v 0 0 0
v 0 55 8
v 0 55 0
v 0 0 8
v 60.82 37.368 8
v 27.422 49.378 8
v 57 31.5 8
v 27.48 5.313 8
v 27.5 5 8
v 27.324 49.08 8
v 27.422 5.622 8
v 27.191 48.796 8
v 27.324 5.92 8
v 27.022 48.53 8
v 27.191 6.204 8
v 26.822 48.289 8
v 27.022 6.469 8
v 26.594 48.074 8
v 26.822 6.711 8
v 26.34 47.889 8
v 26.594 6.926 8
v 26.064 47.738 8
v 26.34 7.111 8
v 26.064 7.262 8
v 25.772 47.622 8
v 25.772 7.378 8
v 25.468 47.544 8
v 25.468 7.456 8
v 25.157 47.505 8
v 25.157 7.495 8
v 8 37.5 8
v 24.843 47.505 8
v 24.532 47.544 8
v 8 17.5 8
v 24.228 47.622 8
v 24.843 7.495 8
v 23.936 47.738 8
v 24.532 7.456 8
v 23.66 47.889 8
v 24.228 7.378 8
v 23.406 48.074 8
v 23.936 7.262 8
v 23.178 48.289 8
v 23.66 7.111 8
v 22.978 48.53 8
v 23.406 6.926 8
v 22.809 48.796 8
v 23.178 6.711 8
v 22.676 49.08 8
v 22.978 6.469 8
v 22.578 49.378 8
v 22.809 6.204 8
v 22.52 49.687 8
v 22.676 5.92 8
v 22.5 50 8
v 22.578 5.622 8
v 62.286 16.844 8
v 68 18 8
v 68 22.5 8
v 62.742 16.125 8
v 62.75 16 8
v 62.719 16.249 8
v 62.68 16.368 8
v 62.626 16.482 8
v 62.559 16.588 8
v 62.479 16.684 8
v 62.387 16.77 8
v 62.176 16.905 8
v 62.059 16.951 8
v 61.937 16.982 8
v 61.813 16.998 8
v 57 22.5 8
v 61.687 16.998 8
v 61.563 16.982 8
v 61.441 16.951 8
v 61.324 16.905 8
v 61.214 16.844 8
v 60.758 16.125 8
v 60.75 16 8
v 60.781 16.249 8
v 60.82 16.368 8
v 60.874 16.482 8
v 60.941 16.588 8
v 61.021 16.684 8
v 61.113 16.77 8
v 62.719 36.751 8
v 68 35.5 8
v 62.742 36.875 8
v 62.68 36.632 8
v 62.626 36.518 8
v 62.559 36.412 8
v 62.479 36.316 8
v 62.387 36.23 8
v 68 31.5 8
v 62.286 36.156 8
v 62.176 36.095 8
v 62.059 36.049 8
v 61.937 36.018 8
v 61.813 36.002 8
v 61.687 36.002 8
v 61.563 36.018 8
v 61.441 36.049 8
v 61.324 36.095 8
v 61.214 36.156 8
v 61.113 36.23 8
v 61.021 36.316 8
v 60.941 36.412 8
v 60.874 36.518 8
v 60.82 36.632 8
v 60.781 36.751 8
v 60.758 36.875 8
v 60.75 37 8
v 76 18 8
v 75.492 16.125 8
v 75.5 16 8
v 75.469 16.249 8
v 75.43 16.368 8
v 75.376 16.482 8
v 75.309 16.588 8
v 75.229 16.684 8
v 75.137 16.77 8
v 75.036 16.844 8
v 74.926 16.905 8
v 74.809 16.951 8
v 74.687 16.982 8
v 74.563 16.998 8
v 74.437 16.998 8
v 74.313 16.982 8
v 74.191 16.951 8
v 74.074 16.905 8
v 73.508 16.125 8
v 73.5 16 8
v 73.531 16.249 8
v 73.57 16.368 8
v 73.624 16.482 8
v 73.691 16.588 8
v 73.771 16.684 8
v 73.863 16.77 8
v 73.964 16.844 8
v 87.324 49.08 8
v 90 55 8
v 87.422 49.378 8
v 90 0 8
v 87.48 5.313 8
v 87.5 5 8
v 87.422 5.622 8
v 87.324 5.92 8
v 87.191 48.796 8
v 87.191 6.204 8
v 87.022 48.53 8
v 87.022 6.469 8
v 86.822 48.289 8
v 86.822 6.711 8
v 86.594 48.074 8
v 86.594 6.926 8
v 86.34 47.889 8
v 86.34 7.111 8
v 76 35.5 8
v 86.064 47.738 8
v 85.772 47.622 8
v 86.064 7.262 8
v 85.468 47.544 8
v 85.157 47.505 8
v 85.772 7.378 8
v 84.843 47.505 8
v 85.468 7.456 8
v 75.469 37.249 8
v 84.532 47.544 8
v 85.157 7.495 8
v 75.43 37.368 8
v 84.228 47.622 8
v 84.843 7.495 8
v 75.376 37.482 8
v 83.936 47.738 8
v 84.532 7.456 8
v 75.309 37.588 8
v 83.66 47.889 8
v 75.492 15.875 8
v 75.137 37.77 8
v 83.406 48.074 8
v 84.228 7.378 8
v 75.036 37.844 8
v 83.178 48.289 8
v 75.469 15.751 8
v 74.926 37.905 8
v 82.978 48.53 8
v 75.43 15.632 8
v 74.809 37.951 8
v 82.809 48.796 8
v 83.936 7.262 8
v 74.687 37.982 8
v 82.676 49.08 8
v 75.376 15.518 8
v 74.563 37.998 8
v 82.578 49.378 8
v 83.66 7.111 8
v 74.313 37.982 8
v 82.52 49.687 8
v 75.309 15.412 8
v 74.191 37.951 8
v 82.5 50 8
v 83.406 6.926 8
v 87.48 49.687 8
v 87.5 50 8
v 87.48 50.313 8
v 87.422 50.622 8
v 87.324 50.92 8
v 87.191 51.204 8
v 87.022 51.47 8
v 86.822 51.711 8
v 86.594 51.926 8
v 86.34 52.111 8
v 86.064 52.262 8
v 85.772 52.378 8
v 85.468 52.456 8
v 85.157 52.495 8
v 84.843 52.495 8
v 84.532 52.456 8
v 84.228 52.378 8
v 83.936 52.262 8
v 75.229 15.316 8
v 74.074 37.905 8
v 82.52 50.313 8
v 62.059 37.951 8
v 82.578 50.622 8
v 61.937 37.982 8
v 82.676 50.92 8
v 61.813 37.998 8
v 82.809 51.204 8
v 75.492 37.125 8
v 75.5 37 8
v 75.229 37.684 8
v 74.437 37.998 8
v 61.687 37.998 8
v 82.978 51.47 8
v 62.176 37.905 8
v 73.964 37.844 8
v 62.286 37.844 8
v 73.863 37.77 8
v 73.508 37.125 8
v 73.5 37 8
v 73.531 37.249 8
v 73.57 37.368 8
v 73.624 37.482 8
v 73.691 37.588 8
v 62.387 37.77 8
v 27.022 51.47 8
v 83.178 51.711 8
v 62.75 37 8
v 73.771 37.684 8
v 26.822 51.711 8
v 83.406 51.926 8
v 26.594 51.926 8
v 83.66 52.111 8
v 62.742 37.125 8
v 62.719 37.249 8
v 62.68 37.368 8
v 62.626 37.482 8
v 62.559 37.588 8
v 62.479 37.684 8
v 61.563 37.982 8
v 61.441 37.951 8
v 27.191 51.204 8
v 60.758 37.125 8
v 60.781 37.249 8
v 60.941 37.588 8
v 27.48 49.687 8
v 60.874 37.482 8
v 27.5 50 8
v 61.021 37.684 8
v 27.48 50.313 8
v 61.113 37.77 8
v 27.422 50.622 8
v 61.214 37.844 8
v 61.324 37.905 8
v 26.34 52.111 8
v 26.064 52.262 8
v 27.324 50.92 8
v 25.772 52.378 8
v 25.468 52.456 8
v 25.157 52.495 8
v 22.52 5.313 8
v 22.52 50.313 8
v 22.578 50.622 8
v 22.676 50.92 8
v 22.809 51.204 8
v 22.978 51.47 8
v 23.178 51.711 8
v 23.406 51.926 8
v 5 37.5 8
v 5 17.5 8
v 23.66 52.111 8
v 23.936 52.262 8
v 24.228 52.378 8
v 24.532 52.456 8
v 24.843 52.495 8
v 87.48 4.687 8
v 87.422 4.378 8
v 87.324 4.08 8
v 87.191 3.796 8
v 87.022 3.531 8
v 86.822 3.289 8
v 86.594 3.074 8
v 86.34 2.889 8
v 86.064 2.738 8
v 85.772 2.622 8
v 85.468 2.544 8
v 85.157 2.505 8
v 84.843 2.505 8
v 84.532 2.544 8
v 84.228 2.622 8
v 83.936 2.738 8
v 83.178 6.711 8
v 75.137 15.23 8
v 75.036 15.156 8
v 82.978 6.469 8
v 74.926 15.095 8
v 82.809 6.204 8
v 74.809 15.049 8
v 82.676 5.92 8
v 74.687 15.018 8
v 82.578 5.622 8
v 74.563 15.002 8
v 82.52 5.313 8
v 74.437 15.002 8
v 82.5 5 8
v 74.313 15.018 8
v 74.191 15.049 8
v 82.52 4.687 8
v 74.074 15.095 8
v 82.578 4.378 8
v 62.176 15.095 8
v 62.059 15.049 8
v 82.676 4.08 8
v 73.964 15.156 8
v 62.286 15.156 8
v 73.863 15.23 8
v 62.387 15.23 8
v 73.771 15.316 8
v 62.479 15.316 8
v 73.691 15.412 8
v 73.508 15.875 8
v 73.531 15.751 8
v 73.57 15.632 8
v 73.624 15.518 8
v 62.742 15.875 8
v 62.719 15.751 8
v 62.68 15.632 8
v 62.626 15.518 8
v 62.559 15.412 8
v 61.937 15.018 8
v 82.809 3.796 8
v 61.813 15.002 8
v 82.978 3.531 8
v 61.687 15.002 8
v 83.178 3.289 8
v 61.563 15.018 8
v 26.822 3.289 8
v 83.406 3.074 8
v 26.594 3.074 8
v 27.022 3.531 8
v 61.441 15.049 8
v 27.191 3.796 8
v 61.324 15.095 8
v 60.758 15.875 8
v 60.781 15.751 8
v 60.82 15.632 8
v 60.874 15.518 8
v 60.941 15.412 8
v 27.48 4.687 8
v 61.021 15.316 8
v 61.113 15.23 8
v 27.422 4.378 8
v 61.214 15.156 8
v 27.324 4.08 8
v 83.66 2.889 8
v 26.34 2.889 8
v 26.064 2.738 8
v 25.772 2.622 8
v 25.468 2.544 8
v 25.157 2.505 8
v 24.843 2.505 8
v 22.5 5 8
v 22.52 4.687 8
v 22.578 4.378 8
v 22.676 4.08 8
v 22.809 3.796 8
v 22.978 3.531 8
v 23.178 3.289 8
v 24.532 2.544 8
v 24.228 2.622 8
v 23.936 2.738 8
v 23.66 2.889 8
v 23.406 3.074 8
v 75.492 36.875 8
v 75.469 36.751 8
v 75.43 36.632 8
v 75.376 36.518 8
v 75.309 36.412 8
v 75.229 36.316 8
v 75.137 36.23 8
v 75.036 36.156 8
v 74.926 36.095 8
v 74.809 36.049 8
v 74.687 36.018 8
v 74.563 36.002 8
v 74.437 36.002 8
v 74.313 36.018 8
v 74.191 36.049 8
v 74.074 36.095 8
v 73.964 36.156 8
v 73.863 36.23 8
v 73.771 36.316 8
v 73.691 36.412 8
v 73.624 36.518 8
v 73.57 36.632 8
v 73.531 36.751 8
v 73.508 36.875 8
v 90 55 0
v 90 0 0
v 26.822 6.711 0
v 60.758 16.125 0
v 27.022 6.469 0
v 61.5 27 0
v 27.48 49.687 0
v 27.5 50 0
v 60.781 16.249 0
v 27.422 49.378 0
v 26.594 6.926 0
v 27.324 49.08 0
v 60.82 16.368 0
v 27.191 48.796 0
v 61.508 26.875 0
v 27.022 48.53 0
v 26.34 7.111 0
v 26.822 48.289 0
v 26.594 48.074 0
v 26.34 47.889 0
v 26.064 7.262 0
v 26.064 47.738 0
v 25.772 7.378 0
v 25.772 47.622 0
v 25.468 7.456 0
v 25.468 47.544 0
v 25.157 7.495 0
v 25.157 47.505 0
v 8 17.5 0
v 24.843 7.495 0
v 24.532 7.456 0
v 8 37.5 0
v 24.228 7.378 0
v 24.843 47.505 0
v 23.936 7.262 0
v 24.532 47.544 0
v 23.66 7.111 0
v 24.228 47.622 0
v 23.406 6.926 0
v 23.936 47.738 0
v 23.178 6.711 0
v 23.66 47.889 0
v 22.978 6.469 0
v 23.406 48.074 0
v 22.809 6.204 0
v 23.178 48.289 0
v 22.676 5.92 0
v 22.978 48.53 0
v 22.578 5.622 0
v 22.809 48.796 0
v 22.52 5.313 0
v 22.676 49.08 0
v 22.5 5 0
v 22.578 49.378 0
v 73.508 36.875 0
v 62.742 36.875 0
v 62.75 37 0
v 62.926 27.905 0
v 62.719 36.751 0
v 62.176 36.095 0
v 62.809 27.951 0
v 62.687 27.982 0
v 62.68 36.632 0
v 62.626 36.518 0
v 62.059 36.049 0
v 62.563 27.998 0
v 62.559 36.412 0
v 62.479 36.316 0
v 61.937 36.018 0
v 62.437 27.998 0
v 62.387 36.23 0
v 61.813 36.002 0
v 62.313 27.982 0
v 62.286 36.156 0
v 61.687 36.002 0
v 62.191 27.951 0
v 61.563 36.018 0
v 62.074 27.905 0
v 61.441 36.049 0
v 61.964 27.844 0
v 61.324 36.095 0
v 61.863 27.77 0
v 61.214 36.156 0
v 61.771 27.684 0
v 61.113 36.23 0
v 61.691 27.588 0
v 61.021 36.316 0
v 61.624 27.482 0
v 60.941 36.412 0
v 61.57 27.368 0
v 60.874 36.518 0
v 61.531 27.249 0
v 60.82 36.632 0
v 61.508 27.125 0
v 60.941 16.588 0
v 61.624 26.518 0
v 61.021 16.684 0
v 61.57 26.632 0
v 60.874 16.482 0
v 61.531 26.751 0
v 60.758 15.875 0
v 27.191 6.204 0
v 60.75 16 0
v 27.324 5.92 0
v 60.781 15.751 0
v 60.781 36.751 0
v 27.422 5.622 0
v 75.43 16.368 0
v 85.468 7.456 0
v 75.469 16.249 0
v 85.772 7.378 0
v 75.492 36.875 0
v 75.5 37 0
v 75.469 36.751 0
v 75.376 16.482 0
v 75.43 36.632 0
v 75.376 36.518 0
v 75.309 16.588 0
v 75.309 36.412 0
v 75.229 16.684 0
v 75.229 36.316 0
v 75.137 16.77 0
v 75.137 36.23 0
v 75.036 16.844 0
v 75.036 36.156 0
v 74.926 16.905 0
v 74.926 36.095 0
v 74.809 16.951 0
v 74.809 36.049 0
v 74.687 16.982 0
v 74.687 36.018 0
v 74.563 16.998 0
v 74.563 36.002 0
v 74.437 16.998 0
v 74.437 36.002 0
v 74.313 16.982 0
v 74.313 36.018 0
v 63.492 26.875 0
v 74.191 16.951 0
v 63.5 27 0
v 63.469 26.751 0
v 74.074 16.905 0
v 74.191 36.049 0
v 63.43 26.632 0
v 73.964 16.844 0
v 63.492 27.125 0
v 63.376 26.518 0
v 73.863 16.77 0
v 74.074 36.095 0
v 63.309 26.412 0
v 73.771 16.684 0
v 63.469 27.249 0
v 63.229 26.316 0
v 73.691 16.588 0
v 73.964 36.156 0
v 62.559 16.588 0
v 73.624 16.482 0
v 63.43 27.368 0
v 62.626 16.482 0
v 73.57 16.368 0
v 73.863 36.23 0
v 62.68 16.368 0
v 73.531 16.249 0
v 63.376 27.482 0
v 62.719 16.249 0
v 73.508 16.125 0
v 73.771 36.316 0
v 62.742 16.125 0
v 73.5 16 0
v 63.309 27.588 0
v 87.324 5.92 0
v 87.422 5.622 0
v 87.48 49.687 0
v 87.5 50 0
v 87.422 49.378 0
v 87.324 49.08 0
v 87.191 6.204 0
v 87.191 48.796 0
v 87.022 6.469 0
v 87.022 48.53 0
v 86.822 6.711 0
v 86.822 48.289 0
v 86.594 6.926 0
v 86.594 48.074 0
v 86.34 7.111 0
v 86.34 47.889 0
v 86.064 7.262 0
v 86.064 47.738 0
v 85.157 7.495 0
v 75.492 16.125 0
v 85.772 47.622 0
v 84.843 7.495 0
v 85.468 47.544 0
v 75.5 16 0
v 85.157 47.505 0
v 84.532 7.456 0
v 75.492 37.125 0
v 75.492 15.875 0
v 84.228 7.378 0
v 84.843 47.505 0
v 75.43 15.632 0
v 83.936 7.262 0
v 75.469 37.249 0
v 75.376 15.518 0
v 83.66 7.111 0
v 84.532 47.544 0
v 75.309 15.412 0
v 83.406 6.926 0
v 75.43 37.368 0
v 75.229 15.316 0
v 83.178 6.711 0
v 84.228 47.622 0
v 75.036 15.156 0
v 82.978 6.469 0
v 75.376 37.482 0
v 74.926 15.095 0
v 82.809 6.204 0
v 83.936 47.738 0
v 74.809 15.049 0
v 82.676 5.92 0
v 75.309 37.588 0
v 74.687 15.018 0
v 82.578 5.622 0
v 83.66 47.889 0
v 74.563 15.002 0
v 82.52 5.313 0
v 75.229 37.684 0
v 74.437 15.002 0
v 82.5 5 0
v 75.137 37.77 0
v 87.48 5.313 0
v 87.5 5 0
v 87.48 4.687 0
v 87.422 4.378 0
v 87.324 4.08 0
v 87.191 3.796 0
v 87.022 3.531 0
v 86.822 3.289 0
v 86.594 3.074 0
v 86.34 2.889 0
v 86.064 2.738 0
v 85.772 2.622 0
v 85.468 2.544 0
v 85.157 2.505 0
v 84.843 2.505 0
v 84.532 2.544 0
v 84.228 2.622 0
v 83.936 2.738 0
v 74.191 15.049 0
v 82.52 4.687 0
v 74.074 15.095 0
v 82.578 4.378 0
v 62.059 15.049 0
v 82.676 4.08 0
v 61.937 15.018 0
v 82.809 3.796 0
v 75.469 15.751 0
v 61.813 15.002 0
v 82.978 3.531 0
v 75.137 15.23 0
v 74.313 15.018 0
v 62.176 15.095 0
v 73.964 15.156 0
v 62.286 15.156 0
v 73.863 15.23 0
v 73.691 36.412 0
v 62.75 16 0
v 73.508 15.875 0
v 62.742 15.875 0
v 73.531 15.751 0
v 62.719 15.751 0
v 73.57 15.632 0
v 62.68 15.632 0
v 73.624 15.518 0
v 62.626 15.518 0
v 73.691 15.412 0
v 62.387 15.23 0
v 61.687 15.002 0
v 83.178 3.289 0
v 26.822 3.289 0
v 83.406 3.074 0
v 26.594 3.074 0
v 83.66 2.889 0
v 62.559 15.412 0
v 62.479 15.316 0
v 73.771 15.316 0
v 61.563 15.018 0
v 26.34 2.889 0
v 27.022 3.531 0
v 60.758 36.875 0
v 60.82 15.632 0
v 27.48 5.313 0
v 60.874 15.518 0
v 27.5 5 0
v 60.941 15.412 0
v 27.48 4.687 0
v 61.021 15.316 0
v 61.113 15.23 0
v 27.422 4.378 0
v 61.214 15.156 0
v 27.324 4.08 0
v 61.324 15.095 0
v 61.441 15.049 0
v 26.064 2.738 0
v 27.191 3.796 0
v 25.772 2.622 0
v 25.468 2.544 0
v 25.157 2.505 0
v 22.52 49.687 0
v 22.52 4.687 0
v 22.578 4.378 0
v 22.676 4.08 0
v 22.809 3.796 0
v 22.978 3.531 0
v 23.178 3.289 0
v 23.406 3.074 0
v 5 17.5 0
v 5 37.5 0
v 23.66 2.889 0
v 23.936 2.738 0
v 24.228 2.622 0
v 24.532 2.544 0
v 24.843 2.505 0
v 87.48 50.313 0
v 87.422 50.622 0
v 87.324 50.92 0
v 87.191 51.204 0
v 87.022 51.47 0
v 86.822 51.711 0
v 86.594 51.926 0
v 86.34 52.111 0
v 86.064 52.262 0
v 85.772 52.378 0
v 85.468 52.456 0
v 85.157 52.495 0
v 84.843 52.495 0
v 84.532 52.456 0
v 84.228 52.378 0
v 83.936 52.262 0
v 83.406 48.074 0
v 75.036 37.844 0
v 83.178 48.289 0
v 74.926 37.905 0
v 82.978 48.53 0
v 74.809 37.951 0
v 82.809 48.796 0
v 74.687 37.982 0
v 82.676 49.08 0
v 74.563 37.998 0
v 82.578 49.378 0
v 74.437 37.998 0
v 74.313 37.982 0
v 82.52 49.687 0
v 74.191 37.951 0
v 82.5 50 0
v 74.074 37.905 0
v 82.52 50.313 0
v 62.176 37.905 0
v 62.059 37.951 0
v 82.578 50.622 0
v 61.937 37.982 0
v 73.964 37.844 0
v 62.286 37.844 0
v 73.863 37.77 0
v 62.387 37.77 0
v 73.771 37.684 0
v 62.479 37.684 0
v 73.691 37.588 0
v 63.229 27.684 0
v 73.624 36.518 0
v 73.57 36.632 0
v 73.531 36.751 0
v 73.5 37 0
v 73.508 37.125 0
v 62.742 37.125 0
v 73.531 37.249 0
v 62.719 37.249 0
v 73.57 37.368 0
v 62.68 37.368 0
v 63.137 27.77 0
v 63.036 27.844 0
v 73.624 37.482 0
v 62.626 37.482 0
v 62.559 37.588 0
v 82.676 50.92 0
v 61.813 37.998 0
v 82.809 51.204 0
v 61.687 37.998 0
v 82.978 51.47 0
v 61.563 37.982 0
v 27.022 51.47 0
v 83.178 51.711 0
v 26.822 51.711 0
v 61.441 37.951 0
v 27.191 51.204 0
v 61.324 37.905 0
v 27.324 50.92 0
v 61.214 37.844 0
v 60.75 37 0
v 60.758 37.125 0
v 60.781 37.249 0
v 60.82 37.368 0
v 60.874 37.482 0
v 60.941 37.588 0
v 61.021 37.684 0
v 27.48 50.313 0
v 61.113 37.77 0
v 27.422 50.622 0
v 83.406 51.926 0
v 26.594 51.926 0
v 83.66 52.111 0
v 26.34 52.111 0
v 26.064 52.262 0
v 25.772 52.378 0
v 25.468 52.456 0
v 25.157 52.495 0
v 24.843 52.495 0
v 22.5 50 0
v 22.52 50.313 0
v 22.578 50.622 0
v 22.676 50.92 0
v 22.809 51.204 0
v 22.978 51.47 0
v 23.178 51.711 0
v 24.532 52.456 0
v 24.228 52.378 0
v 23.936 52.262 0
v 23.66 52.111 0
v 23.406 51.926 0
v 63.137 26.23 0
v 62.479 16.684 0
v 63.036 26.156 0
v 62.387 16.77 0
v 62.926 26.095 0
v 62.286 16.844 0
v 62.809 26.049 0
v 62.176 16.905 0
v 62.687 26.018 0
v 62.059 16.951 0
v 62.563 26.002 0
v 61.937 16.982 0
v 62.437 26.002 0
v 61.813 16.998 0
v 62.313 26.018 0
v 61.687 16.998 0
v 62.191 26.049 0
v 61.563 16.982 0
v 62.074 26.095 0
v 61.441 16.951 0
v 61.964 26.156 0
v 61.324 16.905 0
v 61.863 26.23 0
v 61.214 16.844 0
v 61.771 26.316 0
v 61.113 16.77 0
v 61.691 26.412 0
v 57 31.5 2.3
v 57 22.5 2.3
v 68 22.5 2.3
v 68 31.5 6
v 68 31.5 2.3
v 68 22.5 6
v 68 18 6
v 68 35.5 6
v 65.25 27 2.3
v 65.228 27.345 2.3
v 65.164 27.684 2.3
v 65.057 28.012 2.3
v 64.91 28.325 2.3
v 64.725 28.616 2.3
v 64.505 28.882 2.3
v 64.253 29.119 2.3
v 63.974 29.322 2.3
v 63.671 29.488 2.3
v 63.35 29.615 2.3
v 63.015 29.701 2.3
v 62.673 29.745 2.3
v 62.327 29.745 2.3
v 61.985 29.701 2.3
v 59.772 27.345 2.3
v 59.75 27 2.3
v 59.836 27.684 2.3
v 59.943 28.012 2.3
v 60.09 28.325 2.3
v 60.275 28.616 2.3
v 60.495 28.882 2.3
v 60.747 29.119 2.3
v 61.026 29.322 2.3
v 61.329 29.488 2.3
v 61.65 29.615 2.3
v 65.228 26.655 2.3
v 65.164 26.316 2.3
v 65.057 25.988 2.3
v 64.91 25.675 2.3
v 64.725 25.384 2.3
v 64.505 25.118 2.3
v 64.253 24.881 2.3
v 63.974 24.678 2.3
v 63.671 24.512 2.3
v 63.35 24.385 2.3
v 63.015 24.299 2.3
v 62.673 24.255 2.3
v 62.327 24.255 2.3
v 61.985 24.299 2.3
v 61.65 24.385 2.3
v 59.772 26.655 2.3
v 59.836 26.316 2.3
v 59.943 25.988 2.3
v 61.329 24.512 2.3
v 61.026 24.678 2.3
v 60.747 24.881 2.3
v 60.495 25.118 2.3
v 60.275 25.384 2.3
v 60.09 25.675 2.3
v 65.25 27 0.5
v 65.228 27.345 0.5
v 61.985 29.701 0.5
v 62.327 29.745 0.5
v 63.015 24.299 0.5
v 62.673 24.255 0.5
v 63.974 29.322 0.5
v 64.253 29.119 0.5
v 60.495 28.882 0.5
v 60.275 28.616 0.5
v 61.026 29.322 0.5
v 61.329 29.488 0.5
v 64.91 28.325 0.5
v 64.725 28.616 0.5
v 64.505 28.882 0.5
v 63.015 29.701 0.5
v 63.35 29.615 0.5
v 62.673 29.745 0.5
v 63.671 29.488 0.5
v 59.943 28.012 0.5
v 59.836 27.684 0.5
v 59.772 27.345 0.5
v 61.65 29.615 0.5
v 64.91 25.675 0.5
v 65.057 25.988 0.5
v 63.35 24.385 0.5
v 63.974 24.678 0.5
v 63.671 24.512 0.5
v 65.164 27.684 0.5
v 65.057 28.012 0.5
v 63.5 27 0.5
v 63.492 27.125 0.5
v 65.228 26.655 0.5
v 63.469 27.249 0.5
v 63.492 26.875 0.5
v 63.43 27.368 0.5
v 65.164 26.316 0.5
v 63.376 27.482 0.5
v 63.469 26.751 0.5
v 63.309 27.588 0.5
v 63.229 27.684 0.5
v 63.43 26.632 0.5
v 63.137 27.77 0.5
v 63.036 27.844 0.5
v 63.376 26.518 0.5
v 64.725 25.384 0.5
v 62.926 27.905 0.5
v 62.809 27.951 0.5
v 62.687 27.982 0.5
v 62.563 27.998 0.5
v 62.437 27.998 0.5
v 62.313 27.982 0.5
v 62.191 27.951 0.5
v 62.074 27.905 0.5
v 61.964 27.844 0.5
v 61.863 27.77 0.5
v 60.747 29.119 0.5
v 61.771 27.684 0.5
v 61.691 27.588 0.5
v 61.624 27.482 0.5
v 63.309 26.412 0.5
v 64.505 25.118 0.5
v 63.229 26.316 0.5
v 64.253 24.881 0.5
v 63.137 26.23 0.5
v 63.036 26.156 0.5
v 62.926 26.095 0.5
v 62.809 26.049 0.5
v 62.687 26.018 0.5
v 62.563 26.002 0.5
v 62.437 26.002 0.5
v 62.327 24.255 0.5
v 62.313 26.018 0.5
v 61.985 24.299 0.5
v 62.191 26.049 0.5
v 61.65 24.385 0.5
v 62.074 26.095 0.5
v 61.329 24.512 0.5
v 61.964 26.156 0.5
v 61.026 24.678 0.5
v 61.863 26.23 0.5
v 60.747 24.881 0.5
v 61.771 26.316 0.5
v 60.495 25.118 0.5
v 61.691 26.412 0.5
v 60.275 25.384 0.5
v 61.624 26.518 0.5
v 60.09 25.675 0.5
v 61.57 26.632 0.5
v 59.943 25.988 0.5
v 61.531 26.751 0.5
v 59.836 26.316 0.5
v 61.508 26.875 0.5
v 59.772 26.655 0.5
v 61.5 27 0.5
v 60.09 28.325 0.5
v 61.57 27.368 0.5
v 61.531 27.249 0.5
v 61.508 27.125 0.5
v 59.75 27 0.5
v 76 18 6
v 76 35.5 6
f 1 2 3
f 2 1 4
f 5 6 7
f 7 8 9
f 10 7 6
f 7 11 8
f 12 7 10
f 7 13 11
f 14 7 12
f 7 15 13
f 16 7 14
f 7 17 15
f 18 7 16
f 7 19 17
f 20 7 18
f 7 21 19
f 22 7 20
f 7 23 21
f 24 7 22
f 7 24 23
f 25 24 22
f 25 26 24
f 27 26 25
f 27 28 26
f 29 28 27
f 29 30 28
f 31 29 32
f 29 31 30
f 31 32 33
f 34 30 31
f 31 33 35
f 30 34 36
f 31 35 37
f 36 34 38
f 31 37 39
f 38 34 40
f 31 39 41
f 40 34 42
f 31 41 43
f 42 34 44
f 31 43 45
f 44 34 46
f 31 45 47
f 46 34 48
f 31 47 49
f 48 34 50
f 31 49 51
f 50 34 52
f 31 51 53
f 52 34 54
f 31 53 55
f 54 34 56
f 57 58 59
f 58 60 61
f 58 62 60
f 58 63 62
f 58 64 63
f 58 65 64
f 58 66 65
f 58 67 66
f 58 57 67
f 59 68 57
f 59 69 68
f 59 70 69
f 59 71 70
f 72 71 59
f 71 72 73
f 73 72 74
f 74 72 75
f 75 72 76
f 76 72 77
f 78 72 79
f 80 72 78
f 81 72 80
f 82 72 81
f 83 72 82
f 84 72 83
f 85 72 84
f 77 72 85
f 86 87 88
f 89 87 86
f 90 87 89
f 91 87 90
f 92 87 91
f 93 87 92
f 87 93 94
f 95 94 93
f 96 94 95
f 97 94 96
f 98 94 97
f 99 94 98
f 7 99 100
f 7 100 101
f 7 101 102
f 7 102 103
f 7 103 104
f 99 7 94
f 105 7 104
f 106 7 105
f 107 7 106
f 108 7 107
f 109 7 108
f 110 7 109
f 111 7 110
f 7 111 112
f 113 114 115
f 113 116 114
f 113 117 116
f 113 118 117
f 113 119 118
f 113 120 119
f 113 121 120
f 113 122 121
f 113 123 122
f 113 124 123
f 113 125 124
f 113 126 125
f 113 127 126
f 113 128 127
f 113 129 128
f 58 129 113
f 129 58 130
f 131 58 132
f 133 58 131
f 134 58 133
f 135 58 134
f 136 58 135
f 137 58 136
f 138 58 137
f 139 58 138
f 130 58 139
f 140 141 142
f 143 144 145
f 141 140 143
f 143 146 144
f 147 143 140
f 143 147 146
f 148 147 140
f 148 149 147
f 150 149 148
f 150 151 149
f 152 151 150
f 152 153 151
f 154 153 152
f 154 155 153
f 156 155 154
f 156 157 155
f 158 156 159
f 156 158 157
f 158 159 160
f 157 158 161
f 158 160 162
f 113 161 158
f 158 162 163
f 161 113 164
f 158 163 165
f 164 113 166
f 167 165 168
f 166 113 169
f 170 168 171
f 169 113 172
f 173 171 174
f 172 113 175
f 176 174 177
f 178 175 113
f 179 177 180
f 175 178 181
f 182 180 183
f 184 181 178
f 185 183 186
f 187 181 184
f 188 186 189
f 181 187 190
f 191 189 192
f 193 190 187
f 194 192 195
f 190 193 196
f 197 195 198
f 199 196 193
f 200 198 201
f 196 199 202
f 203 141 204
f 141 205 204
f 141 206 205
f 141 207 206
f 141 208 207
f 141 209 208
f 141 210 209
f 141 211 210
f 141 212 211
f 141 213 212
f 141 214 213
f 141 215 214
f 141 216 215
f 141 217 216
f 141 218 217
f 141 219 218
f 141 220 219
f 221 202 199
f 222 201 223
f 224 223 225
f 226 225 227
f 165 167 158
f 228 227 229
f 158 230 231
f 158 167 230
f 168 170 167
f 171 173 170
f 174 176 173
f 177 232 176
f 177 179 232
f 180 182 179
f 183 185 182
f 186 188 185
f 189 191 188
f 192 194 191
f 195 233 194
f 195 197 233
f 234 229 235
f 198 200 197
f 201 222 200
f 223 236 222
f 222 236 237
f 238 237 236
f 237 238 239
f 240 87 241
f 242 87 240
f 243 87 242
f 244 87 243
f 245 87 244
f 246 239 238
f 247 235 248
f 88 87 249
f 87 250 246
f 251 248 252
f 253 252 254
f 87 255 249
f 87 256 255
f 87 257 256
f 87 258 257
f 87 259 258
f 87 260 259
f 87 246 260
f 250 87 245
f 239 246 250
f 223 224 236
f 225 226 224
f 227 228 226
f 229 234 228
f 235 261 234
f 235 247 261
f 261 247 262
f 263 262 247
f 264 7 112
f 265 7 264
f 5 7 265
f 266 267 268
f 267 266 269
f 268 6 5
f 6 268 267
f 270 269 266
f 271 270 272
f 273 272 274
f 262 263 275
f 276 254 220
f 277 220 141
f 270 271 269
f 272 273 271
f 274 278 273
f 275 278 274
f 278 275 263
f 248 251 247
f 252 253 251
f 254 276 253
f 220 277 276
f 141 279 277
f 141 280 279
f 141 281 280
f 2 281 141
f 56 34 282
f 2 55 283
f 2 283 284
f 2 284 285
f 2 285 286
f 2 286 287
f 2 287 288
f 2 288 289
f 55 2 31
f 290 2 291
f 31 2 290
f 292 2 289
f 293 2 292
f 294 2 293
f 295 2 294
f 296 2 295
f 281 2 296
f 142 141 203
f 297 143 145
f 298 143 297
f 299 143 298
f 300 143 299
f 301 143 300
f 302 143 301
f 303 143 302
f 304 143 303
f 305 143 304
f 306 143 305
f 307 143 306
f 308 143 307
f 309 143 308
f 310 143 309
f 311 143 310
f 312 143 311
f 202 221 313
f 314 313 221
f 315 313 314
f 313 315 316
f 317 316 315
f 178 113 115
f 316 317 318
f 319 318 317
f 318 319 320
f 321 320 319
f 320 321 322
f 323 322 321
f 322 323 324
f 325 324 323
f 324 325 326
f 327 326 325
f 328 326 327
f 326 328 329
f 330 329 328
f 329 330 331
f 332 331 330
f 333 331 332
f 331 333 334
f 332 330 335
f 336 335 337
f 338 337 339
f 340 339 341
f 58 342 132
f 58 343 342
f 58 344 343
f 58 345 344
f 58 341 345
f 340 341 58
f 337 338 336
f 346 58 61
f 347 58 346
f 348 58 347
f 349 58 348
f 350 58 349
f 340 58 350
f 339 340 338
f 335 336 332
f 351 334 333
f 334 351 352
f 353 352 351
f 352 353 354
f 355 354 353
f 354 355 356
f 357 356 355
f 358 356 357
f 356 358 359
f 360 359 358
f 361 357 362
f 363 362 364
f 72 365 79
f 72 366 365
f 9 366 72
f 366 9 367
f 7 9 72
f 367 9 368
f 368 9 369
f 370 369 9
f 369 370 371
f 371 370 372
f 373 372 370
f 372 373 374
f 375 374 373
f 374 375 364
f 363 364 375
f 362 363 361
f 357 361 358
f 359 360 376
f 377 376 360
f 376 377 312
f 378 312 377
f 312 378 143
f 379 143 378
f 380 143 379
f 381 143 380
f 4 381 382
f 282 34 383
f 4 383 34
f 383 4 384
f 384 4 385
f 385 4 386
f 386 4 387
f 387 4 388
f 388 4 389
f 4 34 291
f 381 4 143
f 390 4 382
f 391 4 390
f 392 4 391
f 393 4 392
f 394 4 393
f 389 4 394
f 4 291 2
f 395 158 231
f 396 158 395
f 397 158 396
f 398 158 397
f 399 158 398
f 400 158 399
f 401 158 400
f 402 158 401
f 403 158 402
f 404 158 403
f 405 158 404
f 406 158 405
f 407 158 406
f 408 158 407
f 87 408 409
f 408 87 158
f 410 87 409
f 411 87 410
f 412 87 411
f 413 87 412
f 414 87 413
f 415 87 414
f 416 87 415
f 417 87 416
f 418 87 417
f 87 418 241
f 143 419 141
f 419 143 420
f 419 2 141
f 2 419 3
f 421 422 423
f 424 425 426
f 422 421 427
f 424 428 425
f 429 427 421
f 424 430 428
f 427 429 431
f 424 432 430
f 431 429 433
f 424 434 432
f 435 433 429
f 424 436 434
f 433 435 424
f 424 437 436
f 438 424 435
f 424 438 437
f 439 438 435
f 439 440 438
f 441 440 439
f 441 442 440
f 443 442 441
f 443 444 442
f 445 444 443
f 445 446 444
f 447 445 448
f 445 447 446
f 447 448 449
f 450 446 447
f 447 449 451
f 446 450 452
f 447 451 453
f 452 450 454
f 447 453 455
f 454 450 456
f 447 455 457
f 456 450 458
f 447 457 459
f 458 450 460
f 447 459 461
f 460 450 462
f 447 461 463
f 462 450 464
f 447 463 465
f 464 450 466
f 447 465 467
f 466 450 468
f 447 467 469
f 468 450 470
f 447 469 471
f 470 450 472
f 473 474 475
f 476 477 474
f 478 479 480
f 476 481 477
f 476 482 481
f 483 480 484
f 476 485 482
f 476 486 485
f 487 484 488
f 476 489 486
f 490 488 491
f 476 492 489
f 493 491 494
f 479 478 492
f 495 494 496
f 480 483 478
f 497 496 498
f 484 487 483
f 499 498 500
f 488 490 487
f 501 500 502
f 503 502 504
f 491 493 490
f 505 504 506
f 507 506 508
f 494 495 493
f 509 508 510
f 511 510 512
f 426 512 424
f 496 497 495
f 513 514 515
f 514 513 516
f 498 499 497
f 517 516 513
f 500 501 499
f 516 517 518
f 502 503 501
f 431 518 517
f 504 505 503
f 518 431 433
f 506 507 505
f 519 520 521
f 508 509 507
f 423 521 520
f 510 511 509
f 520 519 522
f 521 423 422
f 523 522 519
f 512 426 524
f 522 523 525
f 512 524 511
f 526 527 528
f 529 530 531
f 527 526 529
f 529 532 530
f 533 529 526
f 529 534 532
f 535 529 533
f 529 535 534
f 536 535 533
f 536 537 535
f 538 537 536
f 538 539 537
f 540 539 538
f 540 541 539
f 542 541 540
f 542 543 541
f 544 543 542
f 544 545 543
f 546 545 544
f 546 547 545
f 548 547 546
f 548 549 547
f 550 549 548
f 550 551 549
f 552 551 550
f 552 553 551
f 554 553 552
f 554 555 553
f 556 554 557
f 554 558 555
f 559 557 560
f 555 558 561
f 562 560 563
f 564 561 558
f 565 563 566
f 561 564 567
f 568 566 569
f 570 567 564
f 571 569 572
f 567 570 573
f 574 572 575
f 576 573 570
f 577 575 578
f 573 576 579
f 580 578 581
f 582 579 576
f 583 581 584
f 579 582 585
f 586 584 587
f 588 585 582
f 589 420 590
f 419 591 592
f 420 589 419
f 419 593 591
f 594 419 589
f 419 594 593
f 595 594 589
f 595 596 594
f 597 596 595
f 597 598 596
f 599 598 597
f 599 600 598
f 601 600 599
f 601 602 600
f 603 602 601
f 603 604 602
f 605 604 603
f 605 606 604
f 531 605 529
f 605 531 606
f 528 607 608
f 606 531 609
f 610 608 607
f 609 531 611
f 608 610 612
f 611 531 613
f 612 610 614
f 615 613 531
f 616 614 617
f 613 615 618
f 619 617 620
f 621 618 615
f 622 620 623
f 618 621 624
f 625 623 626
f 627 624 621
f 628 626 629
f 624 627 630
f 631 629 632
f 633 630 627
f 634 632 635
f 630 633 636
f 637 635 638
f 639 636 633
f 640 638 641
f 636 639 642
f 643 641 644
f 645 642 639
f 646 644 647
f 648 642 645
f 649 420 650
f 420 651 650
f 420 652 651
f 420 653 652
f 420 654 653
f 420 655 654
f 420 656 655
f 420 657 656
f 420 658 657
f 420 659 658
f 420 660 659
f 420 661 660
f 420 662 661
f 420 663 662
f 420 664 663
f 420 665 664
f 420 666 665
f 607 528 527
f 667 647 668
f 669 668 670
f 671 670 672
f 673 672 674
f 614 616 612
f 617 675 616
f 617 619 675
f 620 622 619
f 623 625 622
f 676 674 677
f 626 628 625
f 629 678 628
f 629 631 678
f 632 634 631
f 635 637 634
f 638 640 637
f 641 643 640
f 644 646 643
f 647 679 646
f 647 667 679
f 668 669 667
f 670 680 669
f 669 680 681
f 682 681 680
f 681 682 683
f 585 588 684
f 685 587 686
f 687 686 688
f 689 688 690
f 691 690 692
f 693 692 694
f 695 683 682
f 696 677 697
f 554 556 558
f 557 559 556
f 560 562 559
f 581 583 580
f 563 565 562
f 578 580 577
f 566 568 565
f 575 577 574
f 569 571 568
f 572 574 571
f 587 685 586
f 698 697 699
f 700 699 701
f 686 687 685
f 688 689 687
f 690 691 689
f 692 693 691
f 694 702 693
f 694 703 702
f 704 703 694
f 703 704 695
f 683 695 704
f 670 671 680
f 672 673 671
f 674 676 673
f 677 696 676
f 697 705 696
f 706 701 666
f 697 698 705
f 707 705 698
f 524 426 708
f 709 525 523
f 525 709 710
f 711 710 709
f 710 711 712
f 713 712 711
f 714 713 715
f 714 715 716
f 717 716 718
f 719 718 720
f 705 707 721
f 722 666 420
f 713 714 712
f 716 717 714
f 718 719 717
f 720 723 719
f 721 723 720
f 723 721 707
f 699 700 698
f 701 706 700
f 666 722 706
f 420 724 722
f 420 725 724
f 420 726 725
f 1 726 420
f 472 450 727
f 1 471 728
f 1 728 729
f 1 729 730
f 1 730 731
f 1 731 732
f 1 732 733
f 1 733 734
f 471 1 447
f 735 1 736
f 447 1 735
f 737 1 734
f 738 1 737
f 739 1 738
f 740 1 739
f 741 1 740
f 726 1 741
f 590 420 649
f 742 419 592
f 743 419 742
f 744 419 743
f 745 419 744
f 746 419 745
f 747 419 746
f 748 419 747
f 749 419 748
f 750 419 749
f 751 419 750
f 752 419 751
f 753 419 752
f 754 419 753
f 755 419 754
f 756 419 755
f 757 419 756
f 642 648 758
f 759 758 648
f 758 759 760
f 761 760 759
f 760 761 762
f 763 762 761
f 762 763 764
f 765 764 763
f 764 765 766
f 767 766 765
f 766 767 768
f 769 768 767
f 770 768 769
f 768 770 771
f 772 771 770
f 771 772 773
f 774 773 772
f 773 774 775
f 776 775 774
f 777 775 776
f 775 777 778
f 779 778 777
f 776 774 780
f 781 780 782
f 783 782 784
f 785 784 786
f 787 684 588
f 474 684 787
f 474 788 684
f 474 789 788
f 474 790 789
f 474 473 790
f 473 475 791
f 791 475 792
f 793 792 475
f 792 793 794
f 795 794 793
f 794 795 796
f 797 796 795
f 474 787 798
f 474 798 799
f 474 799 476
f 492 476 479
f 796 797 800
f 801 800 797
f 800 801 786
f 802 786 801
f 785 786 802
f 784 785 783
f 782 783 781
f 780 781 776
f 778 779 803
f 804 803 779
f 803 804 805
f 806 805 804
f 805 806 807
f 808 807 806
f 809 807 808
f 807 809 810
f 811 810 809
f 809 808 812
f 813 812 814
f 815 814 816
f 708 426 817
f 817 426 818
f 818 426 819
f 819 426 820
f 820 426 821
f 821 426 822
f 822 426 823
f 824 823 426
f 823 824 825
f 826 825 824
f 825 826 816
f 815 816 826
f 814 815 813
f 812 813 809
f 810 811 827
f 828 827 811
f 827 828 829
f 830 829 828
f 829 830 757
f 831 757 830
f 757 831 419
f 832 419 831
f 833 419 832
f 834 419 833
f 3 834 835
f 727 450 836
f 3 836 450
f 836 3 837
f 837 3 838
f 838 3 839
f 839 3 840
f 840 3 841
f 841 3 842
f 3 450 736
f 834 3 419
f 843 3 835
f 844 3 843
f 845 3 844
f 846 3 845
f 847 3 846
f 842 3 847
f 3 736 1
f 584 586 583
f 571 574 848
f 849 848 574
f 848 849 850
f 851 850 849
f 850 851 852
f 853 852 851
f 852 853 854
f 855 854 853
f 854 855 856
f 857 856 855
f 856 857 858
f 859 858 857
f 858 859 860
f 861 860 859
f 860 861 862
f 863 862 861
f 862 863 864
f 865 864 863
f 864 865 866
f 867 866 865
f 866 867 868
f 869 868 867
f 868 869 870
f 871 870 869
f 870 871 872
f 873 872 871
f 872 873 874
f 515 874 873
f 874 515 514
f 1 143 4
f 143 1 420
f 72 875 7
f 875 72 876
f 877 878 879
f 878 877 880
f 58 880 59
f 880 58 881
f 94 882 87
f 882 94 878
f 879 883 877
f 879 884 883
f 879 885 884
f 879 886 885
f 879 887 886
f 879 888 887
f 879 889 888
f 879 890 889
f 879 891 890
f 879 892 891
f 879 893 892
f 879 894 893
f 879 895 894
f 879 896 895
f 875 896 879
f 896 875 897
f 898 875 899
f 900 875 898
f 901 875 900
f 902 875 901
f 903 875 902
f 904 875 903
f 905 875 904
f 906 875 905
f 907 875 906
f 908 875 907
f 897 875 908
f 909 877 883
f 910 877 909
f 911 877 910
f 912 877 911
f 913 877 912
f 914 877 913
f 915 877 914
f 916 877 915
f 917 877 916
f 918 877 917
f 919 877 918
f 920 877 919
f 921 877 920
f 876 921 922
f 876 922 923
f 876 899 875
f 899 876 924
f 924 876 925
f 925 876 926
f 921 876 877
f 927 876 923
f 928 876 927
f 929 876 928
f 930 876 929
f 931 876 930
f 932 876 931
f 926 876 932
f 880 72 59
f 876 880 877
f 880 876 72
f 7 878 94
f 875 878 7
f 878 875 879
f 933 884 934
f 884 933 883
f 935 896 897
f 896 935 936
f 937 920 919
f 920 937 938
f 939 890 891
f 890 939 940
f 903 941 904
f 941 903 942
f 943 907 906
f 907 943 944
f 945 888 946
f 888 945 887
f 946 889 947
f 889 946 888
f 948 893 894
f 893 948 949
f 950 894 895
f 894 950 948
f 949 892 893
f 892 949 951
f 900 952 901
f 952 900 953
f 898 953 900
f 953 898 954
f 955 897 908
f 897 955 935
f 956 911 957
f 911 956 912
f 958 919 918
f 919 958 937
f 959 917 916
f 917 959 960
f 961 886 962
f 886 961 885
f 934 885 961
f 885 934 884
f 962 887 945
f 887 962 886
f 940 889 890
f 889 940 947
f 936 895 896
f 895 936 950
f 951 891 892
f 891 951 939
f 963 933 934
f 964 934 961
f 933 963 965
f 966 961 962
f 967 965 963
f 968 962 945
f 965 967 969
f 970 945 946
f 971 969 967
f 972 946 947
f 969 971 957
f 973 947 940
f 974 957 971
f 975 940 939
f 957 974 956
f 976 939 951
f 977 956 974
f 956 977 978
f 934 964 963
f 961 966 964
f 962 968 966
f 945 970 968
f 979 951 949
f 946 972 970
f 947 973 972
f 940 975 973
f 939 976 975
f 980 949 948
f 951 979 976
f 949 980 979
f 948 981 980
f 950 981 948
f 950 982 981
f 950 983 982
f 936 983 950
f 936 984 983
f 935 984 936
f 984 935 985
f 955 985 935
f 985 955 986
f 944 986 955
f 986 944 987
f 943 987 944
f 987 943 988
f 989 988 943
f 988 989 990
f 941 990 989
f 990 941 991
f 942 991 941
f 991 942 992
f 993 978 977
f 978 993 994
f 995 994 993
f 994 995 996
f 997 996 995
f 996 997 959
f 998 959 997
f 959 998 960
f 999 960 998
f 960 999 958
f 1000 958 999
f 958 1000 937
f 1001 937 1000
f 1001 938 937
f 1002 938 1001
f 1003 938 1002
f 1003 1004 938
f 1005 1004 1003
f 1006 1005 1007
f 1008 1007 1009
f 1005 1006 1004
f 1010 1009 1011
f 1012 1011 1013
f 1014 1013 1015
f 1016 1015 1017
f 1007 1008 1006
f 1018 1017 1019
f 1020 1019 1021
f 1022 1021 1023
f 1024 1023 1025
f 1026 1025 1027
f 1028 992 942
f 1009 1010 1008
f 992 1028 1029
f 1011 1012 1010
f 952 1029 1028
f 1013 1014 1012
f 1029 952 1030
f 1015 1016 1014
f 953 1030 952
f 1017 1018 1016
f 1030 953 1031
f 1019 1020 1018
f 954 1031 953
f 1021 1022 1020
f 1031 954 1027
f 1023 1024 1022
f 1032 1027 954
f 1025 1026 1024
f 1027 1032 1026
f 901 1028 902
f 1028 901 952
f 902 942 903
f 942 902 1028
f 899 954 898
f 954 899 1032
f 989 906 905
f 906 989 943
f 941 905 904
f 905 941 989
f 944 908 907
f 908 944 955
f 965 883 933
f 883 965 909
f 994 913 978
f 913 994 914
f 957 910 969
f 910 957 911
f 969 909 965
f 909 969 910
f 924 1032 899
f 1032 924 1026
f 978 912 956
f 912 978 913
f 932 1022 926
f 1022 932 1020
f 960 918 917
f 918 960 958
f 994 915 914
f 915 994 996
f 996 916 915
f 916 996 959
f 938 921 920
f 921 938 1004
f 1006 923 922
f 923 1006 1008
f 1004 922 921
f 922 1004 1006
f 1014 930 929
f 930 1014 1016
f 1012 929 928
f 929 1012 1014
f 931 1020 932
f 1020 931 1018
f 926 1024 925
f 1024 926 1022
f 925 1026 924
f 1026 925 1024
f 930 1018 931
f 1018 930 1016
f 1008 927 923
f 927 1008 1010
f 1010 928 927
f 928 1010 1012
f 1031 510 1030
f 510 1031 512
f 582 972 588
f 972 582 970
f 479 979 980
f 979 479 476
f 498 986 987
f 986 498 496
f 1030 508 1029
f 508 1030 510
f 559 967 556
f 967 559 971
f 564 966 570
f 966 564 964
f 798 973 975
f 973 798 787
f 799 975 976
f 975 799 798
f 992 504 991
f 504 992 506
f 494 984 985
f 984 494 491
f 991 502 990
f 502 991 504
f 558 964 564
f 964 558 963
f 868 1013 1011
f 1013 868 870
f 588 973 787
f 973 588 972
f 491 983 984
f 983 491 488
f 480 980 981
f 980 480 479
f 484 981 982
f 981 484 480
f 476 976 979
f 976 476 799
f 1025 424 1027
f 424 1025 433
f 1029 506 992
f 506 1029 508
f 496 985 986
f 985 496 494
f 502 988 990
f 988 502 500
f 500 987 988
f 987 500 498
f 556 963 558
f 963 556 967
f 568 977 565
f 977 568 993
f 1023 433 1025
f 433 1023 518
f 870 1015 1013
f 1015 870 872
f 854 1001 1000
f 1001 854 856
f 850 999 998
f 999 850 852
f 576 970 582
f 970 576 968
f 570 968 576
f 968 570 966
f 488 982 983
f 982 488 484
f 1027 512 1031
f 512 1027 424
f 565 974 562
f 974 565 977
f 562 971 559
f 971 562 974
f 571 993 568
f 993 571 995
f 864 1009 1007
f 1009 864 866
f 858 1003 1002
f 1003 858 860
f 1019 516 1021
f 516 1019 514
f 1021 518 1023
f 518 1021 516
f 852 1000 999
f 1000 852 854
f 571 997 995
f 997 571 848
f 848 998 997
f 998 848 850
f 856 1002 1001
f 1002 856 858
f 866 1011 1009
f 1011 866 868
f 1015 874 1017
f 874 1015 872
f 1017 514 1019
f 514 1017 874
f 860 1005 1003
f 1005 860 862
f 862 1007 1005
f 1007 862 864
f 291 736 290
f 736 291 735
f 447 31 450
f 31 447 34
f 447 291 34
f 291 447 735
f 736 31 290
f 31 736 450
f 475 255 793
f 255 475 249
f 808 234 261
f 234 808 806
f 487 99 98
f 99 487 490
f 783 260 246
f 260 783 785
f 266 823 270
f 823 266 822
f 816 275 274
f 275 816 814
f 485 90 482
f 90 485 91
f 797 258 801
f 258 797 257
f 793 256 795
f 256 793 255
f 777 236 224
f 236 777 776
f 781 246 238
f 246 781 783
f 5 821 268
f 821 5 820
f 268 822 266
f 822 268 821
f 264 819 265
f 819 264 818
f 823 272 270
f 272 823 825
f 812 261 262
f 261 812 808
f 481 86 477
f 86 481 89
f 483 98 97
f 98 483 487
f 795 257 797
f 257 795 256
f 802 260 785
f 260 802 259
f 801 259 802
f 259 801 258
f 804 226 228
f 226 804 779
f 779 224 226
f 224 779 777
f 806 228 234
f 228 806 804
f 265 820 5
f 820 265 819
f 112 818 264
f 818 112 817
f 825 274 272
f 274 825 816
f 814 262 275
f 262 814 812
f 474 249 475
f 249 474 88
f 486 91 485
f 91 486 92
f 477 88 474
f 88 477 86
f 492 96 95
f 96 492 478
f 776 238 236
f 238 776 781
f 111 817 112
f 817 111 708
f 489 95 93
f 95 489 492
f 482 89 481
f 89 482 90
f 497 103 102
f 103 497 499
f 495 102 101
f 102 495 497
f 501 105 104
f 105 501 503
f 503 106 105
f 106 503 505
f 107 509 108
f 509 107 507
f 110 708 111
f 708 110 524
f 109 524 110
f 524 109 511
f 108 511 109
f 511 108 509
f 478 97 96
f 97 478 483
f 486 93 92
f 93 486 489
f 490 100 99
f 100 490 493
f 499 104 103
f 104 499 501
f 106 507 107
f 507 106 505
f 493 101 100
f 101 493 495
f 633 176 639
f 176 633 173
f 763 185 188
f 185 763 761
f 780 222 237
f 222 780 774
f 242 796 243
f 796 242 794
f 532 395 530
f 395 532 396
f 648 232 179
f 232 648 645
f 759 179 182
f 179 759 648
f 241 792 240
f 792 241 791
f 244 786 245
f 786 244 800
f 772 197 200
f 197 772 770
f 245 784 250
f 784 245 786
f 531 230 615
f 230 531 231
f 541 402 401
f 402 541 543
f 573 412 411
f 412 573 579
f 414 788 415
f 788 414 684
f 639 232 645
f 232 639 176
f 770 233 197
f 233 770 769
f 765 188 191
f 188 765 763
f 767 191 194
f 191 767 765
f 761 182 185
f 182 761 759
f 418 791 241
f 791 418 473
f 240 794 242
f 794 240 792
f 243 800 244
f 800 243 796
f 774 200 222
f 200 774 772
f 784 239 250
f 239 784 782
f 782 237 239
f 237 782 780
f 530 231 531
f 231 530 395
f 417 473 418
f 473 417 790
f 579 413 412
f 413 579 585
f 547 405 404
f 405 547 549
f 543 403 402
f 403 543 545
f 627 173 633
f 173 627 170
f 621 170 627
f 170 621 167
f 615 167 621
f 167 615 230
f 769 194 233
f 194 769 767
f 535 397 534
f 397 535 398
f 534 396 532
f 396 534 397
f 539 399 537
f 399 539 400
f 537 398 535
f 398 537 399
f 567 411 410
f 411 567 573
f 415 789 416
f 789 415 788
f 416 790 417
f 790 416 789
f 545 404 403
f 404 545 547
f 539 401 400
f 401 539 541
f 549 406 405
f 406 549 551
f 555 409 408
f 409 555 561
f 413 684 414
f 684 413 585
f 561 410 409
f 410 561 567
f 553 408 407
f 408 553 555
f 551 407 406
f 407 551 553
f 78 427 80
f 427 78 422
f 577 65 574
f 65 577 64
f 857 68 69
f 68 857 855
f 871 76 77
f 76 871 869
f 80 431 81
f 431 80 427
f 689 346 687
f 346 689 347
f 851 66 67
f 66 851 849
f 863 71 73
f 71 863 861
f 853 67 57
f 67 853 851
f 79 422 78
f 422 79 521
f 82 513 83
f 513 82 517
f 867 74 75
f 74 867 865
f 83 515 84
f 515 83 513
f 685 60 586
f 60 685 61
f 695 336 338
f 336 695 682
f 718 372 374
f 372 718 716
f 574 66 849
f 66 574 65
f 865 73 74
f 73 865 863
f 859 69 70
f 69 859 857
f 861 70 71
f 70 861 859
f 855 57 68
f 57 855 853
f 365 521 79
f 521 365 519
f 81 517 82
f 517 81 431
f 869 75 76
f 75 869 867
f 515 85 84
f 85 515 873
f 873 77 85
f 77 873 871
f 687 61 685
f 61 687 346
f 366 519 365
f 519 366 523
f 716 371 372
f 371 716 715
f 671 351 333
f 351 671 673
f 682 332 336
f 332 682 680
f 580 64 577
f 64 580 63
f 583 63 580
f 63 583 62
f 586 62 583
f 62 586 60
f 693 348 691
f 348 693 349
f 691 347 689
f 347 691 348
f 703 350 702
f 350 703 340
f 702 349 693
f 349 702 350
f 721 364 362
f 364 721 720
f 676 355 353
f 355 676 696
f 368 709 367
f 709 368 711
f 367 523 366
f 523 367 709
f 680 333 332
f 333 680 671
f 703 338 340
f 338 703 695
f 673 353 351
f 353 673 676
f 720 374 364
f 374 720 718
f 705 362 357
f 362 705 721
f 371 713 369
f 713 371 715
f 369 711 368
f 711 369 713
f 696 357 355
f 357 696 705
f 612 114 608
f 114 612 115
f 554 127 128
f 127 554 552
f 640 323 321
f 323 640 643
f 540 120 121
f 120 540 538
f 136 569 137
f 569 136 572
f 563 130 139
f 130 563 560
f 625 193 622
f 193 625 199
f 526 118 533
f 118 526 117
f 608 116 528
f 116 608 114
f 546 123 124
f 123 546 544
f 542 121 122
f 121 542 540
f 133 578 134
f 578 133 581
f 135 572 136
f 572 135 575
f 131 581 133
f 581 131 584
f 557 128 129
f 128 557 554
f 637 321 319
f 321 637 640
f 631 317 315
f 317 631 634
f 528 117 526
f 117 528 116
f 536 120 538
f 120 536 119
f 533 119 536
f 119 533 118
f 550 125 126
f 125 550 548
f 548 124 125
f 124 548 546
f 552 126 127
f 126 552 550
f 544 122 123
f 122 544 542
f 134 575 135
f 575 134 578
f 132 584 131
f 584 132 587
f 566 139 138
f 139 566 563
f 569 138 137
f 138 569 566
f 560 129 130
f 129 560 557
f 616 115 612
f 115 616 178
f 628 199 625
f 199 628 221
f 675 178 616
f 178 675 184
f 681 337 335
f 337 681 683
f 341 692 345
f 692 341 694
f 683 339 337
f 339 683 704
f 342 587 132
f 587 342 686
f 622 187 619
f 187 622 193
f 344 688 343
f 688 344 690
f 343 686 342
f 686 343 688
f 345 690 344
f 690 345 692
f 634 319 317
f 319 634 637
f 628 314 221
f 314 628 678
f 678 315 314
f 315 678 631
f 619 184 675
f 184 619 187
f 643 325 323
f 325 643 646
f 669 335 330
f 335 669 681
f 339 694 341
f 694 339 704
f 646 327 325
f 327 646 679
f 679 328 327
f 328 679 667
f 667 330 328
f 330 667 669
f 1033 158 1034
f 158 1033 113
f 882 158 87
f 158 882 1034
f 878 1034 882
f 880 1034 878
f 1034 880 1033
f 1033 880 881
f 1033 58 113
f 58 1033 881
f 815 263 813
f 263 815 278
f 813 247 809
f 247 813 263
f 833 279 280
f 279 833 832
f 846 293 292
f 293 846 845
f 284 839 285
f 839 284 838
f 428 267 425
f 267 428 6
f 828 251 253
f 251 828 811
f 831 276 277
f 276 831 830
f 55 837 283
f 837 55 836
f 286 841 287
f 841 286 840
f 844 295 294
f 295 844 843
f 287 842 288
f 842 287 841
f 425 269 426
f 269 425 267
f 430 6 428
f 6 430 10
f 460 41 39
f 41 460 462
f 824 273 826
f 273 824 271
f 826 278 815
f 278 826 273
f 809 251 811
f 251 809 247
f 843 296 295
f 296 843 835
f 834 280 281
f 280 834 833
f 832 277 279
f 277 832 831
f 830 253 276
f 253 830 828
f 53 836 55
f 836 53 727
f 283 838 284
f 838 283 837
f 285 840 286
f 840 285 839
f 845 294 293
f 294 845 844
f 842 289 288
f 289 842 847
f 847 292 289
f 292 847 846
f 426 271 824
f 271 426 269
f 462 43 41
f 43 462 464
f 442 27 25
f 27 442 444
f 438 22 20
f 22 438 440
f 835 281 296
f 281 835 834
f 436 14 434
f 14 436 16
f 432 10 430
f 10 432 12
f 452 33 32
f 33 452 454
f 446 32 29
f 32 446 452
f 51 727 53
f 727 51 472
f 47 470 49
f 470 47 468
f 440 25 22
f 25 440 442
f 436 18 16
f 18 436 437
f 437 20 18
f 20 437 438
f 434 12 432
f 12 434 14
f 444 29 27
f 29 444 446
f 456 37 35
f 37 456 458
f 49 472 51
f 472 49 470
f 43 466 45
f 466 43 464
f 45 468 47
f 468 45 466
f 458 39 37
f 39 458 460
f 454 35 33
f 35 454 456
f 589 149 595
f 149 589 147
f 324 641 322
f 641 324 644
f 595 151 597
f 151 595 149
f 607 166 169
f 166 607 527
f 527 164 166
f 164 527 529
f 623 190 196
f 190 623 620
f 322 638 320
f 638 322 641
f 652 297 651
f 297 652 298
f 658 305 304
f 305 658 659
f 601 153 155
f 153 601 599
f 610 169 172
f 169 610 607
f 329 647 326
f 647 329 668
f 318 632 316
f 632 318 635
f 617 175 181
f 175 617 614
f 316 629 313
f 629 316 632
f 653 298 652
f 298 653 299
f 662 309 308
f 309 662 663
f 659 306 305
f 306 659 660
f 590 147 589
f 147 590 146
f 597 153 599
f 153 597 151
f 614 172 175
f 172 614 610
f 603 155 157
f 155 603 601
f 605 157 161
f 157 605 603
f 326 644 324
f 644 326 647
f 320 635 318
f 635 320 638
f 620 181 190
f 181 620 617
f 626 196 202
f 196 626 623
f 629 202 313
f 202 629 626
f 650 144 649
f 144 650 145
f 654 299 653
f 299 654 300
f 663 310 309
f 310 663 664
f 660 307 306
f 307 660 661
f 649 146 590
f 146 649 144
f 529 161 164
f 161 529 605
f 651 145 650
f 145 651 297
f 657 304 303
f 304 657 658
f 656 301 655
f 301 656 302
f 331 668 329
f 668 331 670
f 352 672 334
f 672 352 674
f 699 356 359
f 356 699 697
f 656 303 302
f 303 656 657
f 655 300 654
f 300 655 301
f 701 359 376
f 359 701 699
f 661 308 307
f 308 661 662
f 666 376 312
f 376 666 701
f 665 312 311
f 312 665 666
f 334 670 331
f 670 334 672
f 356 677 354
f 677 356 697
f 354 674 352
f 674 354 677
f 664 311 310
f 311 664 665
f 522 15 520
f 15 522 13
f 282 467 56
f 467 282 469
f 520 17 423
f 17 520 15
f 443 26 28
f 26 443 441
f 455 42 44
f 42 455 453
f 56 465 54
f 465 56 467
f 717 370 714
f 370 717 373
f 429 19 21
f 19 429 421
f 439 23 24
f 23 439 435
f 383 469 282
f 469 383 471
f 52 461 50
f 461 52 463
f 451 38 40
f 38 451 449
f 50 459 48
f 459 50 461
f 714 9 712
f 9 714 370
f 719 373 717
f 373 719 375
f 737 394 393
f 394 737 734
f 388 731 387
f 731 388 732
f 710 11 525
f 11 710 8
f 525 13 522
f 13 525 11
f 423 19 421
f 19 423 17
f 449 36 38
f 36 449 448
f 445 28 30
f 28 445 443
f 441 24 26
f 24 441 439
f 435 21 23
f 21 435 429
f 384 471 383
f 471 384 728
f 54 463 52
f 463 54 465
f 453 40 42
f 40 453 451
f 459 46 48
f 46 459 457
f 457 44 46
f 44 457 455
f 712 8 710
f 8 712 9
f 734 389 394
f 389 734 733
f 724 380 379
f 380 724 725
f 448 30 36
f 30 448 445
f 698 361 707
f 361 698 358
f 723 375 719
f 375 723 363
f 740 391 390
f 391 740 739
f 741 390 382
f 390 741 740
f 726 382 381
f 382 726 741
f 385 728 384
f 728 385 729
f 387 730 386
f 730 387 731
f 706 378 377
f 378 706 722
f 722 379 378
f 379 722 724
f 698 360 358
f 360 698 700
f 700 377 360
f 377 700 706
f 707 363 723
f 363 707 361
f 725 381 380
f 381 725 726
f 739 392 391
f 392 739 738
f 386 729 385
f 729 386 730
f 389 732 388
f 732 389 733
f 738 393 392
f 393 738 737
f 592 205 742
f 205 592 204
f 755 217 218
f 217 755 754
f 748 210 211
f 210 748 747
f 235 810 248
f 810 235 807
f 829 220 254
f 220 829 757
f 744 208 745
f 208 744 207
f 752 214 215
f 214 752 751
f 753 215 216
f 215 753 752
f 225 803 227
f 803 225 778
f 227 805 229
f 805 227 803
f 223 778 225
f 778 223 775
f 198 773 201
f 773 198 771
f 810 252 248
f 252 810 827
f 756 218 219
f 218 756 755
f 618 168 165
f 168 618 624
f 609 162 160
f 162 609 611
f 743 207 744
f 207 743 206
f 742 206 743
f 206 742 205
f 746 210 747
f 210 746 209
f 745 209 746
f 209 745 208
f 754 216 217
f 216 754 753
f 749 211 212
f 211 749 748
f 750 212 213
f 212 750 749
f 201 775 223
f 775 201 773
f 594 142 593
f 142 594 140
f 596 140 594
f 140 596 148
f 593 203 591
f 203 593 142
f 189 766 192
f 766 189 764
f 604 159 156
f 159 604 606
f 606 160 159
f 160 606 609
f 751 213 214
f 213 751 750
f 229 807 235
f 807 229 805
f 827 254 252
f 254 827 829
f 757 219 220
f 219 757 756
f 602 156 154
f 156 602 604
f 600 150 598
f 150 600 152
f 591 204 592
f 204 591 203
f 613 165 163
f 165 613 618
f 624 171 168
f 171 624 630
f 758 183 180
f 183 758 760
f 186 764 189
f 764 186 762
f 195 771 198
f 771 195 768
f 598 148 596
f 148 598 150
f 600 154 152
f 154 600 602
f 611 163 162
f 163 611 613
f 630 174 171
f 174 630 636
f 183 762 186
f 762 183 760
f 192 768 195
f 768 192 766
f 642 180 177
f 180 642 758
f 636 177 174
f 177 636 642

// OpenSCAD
// Pi camera
difference() {
    // Bottom 
    cube([90,55,8]);
    
    // camera 
    translate([57,22.5,2.3]) {
        color([1,0,1]) cube([11,9,6]);
    }
    
    // camera lens top hole
    translate([62.5,27,.5]) {
      color([1,0,0]) cylinder(h=2,d=5.5,
      $fn=50);
    }
    
     // camera lens bottom hole
    translate([62.5,27,0]) {
       color([0,1,0]) cylinder(h=1,d=2,
       $fn=50);
    }
   
     // Slot for Pi Camera ribbon cable
    translate([5, 17.5, -1]) {
        color([1,0,1])
        cube([3,20,12]);  
    }
    
    // camera mounting holes top
    translate([61.75,37,-1]) {cylinder(h=9, d=2,
    $fn=50);
    }
    translate([74.5,37,-1]) {cylinder(h=9, d=2,
    $fn=50);
    }
    // camera mounting holes bottom
    translate([61.75,16,-1]) {cylinder(h=9, d=2,
    $fn=50);
    }
    translate([74.5,16,-1]) {cylinder(h=9, d=2,
    $fn=50);
    }
    
    // Camera CPU indent
    translate([68,18,6]) {
    color([1,0,0]) cube([8,17.5,3]);
    }
    
    // Guide holes in each corner
    translate([25,50,-1]) cylinder(h=9, d=5,
    $fn=50);
    translate([85,5,-1]) cylinder(h=9, d=5,
    $fn=50);
    translate([25,5,-1]) cylinder(h=9, d=5,
    $fn=50);
    translate([85,50,-1]) cylinder(h=9, d=5,
    $fn=50); 
}
